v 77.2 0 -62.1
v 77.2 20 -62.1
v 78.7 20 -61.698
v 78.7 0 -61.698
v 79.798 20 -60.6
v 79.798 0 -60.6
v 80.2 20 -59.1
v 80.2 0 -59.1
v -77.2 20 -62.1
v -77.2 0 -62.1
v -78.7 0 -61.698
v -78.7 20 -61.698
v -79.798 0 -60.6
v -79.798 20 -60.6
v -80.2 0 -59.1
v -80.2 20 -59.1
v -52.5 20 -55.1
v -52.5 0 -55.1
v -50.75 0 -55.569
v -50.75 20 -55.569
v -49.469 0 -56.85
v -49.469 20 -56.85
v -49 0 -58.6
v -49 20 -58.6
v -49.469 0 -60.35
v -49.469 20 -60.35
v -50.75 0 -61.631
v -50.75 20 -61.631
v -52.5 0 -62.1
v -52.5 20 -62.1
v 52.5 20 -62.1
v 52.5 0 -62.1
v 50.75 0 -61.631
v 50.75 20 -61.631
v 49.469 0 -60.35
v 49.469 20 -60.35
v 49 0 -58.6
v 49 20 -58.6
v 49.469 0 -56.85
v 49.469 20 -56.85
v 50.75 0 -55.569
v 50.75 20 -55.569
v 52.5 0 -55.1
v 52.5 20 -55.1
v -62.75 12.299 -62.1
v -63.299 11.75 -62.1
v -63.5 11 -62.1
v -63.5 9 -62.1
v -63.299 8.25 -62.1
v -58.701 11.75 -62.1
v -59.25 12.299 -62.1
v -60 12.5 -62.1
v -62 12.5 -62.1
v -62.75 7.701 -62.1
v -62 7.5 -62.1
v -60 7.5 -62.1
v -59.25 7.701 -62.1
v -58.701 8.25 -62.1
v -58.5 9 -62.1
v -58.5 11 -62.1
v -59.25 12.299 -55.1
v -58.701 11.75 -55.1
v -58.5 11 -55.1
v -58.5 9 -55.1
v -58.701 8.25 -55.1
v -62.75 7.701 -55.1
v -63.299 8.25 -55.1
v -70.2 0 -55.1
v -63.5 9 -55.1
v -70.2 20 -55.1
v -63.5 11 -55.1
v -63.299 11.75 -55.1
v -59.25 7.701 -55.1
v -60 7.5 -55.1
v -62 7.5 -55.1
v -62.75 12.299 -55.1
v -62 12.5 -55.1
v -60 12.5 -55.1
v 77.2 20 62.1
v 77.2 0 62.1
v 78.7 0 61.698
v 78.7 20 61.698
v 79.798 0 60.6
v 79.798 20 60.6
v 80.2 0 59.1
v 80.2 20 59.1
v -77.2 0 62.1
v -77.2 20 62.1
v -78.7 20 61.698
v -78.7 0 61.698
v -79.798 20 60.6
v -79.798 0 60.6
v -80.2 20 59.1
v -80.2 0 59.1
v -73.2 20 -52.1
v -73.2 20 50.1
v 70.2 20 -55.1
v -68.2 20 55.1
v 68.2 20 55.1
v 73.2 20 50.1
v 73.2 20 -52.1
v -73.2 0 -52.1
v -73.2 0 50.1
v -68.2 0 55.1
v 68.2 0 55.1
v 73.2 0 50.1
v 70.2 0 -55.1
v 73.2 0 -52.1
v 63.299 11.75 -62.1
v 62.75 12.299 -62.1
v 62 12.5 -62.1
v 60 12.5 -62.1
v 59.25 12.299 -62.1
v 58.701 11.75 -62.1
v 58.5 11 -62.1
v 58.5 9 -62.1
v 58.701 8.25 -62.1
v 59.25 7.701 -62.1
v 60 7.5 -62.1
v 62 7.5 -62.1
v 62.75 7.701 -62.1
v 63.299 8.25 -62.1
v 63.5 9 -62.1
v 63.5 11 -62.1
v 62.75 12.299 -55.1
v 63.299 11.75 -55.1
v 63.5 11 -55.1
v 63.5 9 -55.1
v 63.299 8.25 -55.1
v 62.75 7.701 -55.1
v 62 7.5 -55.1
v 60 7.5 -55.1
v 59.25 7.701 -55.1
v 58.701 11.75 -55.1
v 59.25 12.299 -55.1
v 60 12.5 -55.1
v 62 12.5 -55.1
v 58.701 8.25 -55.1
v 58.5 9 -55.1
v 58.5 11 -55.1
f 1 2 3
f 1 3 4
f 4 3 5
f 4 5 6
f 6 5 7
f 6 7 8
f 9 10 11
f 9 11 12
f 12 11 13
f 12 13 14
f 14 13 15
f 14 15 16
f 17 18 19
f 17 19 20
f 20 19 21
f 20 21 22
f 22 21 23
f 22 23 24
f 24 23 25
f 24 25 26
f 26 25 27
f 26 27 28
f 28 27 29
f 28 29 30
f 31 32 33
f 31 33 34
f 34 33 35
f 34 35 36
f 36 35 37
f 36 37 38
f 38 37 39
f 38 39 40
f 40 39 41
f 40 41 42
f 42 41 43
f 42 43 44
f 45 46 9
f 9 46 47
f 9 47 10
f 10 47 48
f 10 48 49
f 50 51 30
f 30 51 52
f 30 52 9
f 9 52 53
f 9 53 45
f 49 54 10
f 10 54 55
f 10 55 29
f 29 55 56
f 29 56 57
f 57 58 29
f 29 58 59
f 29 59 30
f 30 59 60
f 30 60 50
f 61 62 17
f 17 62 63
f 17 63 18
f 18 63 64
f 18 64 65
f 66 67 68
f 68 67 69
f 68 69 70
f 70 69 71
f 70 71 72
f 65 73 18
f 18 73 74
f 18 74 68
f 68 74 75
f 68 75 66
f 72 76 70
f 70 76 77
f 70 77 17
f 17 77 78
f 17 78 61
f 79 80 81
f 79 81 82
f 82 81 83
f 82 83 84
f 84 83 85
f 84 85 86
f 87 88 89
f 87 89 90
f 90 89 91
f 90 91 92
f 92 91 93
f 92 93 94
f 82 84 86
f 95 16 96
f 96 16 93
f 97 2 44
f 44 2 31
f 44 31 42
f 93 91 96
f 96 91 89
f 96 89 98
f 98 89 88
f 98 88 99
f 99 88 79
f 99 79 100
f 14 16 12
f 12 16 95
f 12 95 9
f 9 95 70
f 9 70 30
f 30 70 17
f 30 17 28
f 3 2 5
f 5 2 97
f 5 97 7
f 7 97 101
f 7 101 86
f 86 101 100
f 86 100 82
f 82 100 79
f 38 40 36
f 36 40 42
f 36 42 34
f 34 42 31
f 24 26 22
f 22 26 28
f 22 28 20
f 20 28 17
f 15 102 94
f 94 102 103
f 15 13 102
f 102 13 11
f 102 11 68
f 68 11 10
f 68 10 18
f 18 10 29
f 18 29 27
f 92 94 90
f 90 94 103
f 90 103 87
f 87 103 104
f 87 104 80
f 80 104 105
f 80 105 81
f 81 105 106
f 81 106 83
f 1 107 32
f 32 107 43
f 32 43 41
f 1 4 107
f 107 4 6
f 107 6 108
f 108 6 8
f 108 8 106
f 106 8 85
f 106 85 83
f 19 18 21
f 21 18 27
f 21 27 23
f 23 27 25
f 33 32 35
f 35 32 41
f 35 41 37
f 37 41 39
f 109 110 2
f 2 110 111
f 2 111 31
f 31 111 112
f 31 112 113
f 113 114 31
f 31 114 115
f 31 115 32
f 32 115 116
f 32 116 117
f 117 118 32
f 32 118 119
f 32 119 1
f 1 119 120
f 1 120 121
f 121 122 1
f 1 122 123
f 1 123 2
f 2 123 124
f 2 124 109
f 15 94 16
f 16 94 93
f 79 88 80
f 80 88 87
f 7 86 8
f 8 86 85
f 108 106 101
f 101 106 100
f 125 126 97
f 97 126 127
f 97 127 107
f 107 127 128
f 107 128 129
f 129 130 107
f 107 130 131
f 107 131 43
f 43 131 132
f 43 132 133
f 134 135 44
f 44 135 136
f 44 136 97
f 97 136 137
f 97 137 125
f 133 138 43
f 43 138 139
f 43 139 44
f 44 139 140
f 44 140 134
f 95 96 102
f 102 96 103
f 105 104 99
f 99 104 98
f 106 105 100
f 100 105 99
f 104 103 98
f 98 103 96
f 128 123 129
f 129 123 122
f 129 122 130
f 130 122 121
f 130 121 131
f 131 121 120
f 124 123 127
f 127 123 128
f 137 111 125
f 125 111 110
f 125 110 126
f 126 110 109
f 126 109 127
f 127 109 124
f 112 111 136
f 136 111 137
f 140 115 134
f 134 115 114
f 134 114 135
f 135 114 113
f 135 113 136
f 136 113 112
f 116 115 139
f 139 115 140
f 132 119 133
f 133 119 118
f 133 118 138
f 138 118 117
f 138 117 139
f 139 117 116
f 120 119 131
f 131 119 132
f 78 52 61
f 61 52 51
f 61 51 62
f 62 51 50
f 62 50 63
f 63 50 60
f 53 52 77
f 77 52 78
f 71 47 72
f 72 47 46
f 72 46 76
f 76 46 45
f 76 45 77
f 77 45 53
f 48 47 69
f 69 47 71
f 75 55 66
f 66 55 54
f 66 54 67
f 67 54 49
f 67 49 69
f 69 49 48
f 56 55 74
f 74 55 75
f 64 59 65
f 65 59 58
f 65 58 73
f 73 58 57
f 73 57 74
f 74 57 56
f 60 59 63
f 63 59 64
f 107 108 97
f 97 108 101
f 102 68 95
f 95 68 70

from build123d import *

# Parameters (mm, degrees)
ESBO_O1_W                    = 160.4
ESBO_O1_H                    = 124.2
ESBO_O1_W_2                  = 146.4
ESBO_O1_H_2                  = 110.2
PAREDES_DEPTH                = 20
CHANFROS_INTERNO_FRENTE_SIZE = 5
FILETE1_R                    = 3
FILETE2_R                    = 3
ESBO_O2_W                    = 98
ESBO_O2_H                    = 30
CORTE_EXTRUS_O1_DEPTH        = 20
FILETE3_RADIUS               = 3.5
FILETE3_LENGTH               = 20
FILETE4_RADIUS               = 3.5
FILETE4_LENGTH               = 20
FILETE5_R                    = 3
FILETE6_R                    = 3
CHANFRO2_SIZE                = 3


with BuildPart() as part:
    # Esboço1 → Paredes (new body)
    with BuildSketch(Plane(origin=(0, 0, 0), x_dir=(1, 0, 0), z_dir=(0, 1, 0))):
        Rectangle(ESBO_O1_W, ESBO_O1_H)
        Rectangle(ESBO_O1_W_2, ESBO_O1_H_2, mode=Mode.SUBTRACT)
    extrude(amount=PAREDES_DEPTH)

    # Chanfros Interno Frente
    chanfros_interno_frente_edges = [part.edges().sort_by_distance(p)[0] for p in [
        (73.2, 10, 55.1),
        (-73.2, 10, 55.1),
    ]]
    chamfer(chanfros_interno_frente_edges, length=CHANFROS_INTERNO_FRENTE_SIZE)

    # Filete1
    filete1_edges = [part.edges().sort_by_distance(p)[0] for p in [
        (-80.2, 10, 62.1),
    ]]
    fillet(filete1_edges, radius=FILETE1_R)

    # Filete2
    filete2_edges = [part.edges().sort_by_distance(p)[0] for p in [
        (80.2, 10, 62.1),
    ]]
    fillet(filete2_edges, radius=FILETE2_R)

    # Esboço2 → Corte-extrusão1 (cut)
    with BuildSketch(Plane(origin=(0, 0, -62.1), x_dir=(-1, 0, 0), z_dir=(0, 0, -1))):
        with Locations((0, 10)):
            Rectangle(ESBO_O2_W, ESBO_O2_H)
        with BuildLine():
            Line((58.5, 11), (58.5, 9))
            ThreePointArc((58.5, 9), (58.939339828, 7.939339828), (60, 7.5))
            Line((60, 7.5), (62, 7.5))
            ThreePointArc((62, 7.5), (63.060660172, 7.939339828), (63.5, 9))
            Line((63.5, 9), (63.5, 11))
            ThreePointArc((63.5, 11), (63.060660172, 12.060660172), (62, 12.5))
            Line((62, 12.5), (60, 12.5))
            ThreePointArc((60, 12.5), (58.939339828, 12.060660172), (58.5, 11))
        make_face()
        with BuildLine():
            Line((-62, 12.5), (-60, 12.5))
            ThreePointArc((-60, 12.5), (-58.939339828, 12.060660172), (-58.5, 11))
            Line((-58.5, 11), (-58.5, 9))
            ThreePointArc((-58.5, 9), (-58.939339828, 7.939339828), (-60, 7.5))
            Line((-60, 7.5), (-62, 7.5))
            ThreePointArc((-62, 7.5), (-63.060660172, 7.939339828), (-63.5, 9))
            Line((-63.5, 9), (-63.5, 11))
            ThreePointArc((-63.5, 11), (-63.060660172, 12.060660172), (-62, 12.5))
        make_face()
    extrude(amount=-CORTE_EXTRUS_O1_DEPTH, mode=Mode.SUBTRACT)

    # Filete3: full round fillet: the end face becomes a half cylinder, R = half its width
    filete3_face = Plane((49, 10, -58.6), x_dir=(0, 1, 0), z_dir=(-1, 0, 0))  # on the end face: x along it, z out of the body
    filete3_slab = filete3_face.offset(-FILETE3_RADIUS / 2) * Box(FILETE3_LENGTH, 2 * FILETE3_RADIUS, FILETE3_RADIUS, mode=Mode.PRIVATE)  # the body's end, R deep
    filete3_round = Plane((52.5, 10, -58.6), x_dir=(-1, 0, 0), z_dir=(0, 1, 0)) * Cylinder(FILETE3_RADIUS, FILETE3_LENGTH, mode=Mode.PRIVATE)  # its axis R under the face
    add(filete3_slab - filete3_round, mode=Mode.SUBTRACT)

    # Filete4: full round fillet: the end face becomes a half cylinder, R = half its width
    filete4_face = Plane((-49, 10, -58.6), x_dir=(0, -1, 0), z_dir=(1, 0, 0))  # on the end face: x along it, z out of the body
    filete4_slab = filete4_face.offset(-FILETE4_RADIUS / 2) * Box(FILETE4_LENGTH, 2 * FILETE4_RADIUS, FILETE4_RADIUS, mode=Mode.PRIVATE)  # the body's end, R deep
    filete4_round = Plane((-52.5, 10, -58.6), x_dir=(1, 0, 0), z_dir=(0, -1, 0)) * Cylinder(FILETE4_RADIUS, FILETE4_LENGTH, mode=Mode.PRIVATE)  # its axis R under the face
    add(filete4_slab - filete4_round, mode=Mode.SUBTRACT)

    # Filete5
    filete5_edges = [part.edges().sort_by_distance(p)[0] for p in [
        (-80.2, 10, -62.1),
    ]]
    fillet(filete5_edges, radius=FILETE5_R)

    # Filete6
    filete6_edges = [part.edges().sort_by_distance(p)[0] for p in [
        (80.2, 10, -62.1),
    ]]
    fillet(filete6_edges, radius=FILETE6_R)

    # Chanfro2
    chanfro2_edges = [part.edges().sort_by_distance(p)[0] for p in [
        (73.2, 10, -55.1),
        (-73.2, 10, -55.1),
    ]]
    chamfer(chanfro2_edges, length=CHANFRO2_SIZE)


solid = part.part
